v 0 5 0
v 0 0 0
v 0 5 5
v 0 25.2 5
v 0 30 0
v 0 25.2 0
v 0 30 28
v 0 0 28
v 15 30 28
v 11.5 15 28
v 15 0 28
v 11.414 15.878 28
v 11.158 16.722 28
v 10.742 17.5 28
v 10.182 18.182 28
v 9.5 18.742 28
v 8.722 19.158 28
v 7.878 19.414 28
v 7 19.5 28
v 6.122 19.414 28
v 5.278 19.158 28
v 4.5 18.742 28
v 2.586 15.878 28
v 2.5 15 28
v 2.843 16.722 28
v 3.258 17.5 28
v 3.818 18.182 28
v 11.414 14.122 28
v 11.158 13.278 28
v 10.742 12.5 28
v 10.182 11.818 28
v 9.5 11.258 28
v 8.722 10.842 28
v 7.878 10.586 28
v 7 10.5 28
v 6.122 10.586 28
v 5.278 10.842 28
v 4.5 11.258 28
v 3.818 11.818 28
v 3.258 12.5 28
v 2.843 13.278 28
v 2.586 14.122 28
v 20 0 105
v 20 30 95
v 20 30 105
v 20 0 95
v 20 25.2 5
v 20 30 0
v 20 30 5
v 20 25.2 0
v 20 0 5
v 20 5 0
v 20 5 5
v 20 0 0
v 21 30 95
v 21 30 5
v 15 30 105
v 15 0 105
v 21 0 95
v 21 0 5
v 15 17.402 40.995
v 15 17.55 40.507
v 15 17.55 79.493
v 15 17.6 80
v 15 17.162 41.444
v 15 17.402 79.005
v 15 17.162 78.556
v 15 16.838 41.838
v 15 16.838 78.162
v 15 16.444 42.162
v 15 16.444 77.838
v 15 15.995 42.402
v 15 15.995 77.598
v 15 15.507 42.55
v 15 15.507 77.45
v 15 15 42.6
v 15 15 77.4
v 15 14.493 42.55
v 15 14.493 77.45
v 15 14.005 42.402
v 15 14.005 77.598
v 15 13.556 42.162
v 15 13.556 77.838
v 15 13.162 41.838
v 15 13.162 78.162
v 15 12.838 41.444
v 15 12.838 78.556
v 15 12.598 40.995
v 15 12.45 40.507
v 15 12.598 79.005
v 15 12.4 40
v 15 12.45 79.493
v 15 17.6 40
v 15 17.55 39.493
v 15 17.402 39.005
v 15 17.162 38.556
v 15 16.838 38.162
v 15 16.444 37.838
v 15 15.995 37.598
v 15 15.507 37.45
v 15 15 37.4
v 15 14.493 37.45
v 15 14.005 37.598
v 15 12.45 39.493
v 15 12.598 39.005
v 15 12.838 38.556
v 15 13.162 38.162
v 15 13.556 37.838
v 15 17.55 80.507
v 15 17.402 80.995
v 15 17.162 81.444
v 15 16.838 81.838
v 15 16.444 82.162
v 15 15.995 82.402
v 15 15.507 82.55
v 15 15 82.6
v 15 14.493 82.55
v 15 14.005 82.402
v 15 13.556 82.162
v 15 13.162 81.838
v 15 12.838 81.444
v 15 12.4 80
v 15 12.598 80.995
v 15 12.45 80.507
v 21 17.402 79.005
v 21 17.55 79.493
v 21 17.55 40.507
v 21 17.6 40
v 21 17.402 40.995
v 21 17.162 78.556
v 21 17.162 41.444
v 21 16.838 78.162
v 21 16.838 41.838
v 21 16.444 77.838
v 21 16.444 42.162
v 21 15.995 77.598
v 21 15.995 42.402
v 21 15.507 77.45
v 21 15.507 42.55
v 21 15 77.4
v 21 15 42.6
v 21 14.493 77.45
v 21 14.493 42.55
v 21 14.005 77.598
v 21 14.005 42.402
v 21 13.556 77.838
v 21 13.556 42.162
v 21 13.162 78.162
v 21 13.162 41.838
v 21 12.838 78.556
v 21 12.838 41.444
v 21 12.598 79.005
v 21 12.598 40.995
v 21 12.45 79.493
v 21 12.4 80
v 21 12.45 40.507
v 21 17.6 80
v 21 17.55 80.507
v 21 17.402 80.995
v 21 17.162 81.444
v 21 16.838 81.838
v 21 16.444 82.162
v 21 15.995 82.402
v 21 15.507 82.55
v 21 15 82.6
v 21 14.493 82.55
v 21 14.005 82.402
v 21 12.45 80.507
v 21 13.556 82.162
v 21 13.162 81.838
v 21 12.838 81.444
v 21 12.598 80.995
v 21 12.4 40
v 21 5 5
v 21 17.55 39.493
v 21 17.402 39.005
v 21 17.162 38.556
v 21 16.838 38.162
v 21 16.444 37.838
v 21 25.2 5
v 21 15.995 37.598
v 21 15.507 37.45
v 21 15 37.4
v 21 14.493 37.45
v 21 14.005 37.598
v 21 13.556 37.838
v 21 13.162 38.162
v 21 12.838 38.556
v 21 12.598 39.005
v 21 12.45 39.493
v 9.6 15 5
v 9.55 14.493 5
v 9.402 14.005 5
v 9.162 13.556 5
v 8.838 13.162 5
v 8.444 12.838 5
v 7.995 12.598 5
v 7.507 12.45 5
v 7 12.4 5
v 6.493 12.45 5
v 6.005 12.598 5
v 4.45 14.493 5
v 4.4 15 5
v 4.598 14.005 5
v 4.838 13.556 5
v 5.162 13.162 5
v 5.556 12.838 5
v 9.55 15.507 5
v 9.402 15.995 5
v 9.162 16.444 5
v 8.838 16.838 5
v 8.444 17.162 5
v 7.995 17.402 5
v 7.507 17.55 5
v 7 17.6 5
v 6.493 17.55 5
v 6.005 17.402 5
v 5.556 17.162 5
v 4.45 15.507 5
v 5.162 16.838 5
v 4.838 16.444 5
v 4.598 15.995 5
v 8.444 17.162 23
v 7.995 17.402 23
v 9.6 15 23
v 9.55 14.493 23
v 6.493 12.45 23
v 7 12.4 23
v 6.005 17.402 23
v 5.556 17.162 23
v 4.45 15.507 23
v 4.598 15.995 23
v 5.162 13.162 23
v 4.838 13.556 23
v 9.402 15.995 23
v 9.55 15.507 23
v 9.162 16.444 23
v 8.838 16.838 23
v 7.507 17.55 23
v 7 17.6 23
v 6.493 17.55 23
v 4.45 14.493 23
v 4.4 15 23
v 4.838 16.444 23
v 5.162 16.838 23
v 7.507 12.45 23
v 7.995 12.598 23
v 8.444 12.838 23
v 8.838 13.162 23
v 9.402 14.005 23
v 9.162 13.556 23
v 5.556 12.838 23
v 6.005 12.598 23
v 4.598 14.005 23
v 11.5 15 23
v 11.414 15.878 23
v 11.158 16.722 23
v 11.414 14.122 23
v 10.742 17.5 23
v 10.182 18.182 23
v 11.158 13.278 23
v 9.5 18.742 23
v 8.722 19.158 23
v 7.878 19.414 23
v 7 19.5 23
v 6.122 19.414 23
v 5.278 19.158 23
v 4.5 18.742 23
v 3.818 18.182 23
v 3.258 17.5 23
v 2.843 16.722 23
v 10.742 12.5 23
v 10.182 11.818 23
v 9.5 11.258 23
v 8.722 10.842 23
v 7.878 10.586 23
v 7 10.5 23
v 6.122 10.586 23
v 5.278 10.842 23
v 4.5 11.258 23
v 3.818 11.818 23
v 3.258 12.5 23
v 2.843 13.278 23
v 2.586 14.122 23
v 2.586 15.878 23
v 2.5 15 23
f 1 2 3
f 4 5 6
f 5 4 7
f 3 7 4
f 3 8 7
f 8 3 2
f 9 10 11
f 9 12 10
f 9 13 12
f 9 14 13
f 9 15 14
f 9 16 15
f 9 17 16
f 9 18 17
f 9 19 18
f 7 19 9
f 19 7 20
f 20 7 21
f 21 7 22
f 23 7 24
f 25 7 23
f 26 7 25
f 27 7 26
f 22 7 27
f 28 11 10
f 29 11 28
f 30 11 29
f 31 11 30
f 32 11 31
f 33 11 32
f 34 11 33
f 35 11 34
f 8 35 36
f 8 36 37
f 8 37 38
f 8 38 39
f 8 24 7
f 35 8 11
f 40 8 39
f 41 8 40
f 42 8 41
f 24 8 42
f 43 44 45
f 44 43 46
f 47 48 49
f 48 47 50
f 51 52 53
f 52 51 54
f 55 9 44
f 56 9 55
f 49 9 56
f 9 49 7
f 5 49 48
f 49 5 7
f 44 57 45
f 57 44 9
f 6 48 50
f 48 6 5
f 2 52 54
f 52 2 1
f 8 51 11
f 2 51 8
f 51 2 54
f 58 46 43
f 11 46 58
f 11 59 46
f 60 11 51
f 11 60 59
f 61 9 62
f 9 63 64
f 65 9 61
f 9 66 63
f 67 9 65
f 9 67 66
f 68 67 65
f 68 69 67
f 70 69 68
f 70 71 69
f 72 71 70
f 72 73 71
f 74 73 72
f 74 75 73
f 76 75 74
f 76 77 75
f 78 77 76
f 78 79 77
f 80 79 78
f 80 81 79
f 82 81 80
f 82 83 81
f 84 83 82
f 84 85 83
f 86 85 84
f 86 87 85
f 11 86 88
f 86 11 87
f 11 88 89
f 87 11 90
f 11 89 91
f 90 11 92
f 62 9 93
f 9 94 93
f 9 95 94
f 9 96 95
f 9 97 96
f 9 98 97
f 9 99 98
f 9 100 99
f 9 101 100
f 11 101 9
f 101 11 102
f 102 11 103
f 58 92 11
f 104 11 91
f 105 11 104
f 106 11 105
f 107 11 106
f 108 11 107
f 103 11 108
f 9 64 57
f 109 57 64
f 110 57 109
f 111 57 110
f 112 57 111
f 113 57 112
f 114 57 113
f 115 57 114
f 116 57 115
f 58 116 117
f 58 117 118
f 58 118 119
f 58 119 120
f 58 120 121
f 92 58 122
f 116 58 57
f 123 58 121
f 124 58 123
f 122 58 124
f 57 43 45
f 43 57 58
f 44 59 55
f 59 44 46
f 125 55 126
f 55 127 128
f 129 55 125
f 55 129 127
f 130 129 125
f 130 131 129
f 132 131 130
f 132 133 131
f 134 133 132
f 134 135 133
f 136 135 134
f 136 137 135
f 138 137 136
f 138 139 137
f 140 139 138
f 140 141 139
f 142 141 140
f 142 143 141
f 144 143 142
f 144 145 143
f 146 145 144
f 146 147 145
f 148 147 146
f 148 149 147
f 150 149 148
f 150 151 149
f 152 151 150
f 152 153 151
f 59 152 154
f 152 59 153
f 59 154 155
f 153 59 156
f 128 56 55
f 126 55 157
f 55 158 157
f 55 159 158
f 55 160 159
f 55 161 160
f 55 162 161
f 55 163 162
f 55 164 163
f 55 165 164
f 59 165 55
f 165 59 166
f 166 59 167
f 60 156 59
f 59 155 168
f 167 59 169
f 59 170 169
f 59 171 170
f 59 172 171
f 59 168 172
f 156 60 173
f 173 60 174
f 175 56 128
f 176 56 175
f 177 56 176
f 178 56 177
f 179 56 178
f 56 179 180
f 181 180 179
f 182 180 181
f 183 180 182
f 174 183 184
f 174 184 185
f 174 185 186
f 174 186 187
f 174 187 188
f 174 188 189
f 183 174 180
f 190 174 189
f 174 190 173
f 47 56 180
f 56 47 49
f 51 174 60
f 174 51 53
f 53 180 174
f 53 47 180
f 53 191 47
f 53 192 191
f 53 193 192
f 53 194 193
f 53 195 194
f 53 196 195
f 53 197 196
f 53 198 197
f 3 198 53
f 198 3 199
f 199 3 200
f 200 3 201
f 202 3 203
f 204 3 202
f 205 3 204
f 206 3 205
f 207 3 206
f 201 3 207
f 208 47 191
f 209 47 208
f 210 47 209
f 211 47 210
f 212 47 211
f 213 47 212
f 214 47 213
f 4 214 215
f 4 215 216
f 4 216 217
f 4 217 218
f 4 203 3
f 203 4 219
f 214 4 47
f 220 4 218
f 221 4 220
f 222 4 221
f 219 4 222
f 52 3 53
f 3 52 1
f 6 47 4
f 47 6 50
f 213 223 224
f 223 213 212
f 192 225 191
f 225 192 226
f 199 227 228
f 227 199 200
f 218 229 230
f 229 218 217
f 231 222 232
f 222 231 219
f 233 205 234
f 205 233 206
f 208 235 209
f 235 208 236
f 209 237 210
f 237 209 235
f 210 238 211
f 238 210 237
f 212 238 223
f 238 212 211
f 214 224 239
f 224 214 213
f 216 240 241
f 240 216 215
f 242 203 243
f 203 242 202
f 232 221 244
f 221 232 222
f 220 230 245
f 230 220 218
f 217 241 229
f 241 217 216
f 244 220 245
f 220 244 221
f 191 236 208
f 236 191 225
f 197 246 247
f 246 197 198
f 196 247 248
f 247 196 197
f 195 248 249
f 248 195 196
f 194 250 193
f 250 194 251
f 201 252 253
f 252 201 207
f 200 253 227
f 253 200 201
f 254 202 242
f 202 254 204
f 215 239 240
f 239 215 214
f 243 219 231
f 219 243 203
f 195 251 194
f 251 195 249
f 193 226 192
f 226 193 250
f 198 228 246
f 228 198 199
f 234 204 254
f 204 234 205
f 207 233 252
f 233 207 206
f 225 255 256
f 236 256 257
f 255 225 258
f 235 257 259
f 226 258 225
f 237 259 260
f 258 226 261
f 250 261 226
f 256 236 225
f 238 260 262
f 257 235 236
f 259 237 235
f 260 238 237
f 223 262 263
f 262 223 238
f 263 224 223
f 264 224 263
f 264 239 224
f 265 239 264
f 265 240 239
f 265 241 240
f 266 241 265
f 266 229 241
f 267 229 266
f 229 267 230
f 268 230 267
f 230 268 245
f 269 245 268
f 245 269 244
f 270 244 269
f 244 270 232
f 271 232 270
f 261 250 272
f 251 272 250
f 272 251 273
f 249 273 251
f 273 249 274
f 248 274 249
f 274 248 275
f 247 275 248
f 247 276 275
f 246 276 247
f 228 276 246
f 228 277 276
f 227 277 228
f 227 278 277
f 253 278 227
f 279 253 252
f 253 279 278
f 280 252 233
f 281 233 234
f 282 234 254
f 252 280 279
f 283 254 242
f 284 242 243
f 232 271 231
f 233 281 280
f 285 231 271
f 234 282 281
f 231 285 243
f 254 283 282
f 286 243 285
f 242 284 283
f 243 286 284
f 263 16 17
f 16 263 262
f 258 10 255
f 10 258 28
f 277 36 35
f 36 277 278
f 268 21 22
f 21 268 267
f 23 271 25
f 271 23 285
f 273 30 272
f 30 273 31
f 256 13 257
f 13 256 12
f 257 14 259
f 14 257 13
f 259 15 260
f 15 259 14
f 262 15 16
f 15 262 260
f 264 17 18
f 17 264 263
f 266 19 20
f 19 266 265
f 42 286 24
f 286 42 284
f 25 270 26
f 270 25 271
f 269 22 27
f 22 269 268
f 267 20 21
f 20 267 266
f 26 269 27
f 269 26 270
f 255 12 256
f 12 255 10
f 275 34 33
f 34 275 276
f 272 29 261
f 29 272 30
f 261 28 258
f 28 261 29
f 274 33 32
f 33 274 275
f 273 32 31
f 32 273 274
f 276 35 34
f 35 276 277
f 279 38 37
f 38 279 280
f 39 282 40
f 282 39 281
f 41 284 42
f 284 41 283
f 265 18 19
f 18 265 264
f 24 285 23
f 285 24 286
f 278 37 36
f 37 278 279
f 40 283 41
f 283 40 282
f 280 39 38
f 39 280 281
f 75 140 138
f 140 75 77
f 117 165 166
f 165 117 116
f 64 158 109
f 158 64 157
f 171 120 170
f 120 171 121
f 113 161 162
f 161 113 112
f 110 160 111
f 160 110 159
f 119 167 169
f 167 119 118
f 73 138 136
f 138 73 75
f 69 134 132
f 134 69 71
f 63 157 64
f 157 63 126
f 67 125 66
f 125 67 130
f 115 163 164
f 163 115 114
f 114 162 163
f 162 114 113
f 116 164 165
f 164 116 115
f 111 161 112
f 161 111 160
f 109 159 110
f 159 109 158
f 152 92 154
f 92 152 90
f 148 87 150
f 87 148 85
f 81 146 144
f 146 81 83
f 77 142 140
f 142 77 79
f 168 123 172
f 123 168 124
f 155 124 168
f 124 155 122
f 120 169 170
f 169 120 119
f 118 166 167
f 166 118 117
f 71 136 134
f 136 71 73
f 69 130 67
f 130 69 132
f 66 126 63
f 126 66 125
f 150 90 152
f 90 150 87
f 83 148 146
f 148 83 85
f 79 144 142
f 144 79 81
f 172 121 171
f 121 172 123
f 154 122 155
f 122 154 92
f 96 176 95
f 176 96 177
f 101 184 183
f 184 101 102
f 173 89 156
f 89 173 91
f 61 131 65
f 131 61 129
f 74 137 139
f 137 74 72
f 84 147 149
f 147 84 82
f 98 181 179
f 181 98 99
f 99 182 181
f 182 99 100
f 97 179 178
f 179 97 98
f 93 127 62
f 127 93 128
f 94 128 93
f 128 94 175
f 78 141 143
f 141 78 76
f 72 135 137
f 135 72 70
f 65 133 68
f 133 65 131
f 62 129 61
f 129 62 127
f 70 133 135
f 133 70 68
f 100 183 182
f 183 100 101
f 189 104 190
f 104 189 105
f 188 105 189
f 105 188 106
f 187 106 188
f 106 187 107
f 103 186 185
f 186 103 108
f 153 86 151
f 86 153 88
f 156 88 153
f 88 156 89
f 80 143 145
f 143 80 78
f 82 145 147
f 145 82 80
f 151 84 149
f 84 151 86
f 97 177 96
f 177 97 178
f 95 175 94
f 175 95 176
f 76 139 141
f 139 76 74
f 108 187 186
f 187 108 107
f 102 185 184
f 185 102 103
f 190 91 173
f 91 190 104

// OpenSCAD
$fn=32;
//difference(){
//    union(){
//        translate([0,-5,-5])cube([50,30,28]);
//        translate([40,-5,23])cube([10,30,100]);
//        translate([0,-5,23])rotate([0,21.5,0])cube([10,30,150]);
//    };
//    translate([-5,0,-20])cube([60,20,20]);
//    translate([49.999,-10,-5])cube([100,50,200]);
//    translate([0,-10,120])cube([60,40,50]);
//    translate([16,10,-1])cylinder(d=5.2,h=100);
//    translate([16,10,18])cylinder(d=9,h=100);
//    translate([32,10,-1])cylinder(d=5.2,h=100);
//    translate([32,10,18])cylinder(d=9,h=100);
//    translate([0,10,37])rotate([0,90,0])cylinder(d=5.2,h=100);
//    translate([0,10,37])rotate([0,90,0])cylinder(d=9,h=25);
//    translate([0,10,68])rotate([0,90,0])cylinder(d=5.2,h=100);
//    translate([10,10,68])rotate([0,90,0])cylinder(d=9,h=25);
//};
difference(){
    union(){
        cube([20,30,28]);
        translate([15,0,5])cube([5,30,100]);
        translate([20,0,5])cube([1,30,90]);
    };
    translate([-2.5,5,-15])cube([30,20.2,20]);
    translate([7,15,-1])cylinder(d=5.2,h=30);
    translate([7,15,23])cylinder(d=9,h=100);
    translate([0,15,80])rotate([0,90,0])cylinder(d=5.2,h=30);
//    translate([14,15,80])rotate([0,90,0])cylinder(d=9,h=5);
    translate([0,15,40])rotate([0,90,0])cylinder(d=5.2,h=30);
//    translate([14,15,40])rotate([0,90,0])cylinder(d=9,h=5);
};
